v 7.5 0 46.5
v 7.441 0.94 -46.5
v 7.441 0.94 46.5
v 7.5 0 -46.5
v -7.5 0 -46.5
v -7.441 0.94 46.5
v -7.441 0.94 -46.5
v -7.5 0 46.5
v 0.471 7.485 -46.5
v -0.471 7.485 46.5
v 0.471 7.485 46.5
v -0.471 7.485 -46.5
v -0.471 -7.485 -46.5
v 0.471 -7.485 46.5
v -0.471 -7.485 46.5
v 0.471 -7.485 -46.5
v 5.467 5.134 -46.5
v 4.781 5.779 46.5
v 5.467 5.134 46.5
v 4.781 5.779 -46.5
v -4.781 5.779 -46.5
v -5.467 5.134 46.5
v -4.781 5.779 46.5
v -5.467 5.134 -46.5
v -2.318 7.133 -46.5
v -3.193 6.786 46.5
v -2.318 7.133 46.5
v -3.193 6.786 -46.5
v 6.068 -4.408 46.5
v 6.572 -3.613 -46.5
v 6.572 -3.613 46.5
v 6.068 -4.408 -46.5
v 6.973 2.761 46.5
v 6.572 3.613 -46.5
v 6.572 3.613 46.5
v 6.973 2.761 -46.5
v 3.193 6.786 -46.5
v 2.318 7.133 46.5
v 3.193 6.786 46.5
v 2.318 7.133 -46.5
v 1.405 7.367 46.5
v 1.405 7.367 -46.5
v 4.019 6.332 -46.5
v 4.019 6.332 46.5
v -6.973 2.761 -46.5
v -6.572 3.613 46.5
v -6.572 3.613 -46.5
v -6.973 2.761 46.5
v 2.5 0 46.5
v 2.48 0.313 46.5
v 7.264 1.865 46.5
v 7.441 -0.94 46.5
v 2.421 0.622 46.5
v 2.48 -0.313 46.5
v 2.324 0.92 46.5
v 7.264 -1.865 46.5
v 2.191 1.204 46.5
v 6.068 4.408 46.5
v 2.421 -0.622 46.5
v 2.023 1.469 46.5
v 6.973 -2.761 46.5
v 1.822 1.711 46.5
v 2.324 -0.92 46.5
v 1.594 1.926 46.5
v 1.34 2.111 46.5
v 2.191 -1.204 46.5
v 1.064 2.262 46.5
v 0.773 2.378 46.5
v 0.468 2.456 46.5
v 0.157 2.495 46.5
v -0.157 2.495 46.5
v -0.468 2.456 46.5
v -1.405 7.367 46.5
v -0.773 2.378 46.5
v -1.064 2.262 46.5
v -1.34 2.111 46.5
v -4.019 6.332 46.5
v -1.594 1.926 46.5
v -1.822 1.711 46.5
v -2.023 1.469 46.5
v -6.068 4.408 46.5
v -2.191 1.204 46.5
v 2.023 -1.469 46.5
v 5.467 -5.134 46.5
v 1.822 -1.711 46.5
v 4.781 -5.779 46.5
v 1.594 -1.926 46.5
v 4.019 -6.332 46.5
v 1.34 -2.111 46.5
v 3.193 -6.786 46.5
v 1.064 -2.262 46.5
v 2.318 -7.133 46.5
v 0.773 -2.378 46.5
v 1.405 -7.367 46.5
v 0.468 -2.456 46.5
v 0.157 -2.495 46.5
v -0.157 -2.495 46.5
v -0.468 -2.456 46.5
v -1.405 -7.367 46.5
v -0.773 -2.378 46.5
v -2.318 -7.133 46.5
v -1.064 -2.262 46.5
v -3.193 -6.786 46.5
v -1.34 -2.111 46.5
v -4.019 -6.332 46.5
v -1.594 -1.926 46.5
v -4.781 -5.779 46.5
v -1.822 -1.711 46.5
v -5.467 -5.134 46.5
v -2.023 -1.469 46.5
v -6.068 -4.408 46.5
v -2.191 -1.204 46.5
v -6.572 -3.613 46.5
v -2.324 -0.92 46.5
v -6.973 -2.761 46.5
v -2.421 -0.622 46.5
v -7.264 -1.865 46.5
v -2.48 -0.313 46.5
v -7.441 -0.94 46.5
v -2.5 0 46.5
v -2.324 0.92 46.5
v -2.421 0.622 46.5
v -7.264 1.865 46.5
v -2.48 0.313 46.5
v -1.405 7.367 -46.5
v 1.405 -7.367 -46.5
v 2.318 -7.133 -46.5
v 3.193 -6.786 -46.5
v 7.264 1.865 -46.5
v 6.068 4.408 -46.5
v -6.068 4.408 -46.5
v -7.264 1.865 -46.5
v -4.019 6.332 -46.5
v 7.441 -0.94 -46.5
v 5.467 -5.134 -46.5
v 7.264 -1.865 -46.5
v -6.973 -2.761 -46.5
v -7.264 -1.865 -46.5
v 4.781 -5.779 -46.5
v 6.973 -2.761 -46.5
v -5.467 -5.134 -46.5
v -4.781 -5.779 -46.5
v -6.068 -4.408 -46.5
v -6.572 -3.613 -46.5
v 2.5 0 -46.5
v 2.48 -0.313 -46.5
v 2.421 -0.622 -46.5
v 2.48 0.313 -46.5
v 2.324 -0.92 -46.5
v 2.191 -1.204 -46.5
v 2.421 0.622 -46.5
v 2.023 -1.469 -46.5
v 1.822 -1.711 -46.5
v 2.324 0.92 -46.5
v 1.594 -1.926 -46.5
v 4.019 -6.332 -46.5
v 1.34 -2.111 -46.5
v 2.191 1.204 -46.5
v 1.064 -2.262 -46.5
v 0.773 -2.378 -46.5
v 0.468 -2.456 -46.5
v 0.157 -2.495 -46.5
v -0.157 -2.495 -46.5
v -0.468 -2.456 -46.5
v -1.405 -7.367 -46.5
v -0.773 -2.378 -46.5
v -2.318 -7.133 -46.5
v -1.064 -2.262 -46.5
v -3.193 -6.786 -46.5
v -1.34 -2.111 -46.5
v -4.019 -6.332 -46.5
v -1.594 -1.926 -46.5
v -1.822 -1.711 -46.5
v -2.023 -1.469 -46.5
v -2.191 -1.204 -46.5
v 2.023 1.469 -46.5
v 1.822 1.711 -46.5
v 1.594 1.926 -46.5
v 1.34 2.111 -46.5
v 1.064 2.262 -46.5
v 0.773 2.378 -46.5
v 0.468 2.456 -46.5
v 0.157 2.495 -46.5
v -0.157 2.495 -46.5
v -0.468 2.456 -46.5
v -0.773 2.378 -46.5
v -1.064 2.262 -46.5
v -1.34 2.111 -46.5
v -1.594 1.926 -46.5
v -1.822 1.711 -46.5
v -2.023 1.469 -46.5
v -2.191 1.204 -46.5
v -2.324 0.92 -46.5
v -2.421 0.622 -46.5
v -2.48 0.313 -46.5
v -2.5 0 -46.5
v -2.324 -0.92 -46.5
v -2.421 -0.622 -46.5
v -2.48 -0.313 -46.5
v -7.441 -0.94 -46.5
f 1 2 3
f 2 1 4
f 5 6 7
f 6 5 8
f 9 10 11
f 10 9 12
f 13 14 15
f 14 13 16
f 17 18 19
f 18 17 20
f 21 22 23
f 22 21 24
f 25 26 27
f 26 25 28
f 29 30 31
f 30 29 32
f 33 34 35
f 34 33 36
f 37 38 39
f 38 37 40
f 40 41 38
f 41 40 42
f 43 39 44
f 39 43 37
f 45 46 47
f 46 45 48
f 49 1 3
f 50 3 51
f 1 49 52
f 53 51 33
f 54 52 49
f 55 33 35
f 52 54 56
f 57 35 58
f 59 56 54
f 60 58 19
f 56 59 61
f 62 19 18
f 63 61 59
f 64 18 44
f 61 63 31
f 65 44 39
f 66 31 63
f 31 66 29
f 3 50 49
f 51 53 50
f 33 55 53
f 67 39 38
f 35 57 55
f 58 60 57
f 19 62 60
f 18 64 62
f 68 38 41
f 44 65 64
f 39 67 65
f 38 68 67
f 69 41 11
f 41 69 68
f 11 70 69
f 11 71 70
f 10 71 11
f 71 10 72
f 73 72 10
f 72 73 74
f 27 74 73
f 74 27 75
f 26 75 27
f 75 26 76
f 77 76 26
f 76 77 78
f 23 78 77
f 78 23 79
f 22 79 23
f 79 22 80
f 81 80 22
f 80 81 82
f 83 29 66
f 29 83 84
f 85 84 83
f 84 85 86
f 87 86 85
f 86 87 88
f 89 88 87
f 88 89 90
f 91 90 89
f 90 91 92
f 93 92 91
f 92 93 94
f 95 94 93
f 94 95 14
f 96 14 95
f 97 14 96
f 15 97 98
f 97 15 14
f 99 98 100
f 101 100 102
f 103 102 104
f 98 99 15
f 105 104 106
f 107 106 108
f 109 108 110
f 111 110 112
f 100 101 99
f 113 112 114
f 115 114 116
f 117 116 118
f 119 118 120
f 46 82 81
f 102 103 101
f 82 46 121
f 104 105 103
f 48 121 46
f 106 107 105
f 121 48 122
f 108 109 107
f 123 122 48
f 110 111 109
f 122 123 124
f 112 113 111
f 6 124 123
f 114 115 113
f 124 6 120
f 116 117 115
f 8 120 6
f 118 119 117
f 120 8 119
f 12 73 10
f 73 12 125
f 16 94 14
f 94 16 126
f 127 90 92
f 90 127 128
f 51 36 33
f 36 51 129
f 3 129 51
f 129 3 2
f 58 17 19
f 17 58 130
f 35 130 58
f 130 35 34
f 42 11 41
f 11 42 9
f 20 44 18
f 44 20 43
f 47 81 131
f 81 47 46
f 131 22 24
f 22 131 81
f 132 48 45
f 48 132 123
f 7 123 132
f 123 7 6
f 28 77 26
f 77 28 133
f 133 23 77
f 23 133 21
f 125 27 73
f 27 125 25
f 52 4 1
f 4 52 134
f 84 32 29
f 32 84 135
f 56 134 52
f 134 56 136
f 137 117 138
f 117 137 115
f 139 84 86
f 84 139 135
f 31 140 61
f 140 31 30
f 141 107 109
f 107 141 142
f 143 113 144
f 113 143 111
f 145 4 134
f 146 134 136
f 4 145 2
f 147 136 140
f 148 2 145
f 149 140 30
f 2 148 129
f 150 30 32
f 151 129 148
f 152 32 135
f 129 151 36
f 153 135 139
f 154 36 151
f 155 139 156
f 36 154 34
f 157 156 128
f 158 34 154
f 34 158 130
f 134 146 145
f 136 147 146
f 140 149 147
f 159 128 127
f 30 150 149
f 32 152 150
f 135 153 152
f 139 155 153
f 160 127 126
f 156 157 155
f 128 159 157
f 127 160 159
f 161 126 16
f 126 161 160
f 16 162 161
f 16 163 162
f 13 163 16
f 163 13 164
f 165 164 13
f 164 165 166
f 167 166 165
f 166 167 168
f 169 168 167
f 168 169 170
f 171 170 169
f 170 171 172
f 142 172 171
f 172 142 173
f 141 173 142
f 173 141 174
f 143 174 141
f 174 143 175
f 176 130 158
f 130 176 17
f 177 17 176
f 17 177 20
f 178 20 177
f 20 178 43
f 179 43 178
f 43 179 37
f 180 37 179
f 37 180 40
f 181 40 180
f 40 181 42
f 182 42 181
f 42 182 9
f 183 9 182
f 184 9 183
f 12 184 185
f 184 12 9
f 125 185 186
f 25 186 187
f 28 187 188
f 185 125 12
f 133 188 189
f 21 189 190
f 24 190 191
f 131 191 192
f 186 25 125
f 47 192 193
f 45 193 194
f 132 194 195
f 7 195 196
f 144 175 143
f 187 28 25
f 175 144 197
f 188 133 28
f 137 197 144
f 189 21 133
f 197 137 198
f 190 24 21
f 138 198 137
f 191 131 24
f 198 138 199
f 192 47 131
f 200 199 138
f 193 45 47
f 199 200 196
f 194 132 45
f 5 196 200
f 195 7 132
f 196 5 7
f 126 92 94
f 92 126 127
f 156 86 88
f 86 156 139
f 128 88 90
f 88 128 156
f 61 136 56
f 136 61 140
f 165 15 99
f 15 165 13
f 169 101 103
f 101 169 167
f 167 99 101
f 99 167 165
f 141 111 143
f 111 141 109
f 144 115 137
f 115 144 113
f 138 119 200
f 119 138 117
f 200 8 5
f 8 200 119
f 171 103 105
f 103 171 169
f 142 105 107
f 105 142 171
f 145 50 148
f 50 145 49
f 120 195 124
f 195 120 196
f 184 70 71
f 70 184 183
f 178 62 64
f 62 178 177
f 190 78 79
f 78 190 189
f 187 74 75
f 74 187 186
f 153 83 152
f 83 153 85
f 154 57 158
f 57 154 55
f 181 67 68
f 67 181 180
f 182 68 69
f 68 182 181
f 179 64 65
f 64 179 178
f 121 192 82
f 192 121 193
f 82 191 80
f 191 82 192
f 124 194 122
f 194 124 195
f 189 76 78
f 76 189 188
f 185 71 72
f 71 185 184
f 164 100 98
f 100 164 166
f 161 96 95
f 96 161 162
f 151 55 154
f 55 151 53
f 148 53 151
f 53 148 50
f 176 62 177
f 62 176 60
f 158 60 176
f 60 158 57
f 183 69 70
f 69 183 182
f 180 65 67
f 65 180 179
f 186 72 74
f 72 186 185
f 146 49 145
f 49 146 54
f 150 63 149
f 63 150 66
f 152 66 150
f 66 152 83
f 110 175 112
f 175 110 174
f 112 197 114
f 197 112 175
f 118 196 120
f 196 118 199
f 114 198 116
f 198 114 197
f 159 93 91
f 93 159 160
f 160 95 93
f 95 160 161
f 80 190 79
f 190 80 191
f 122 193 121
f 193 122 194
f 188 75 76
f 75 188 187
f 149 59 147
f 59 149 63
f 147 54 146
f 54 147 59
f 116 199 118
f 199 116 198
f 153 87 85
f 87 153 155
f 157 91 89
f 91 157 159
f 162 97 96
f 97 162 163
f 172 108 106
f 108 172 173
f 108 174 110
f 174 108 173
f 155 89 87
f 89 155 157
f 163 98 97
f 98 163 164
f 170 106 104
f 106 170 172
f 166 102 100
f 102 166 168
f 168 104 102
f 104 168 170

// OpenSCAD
$fn = 50;


difference() {
	union() {
		translate(v = [0, 0, -46.5000000000]) {
			cylinder(h = 93, r = 7.5000000000);
		}
	}
	union() {
		translate(v = [0, 0, -100.0000000000]) {
			cylinder(h = 200, r = 2.5000000000);
		}
	}
}
